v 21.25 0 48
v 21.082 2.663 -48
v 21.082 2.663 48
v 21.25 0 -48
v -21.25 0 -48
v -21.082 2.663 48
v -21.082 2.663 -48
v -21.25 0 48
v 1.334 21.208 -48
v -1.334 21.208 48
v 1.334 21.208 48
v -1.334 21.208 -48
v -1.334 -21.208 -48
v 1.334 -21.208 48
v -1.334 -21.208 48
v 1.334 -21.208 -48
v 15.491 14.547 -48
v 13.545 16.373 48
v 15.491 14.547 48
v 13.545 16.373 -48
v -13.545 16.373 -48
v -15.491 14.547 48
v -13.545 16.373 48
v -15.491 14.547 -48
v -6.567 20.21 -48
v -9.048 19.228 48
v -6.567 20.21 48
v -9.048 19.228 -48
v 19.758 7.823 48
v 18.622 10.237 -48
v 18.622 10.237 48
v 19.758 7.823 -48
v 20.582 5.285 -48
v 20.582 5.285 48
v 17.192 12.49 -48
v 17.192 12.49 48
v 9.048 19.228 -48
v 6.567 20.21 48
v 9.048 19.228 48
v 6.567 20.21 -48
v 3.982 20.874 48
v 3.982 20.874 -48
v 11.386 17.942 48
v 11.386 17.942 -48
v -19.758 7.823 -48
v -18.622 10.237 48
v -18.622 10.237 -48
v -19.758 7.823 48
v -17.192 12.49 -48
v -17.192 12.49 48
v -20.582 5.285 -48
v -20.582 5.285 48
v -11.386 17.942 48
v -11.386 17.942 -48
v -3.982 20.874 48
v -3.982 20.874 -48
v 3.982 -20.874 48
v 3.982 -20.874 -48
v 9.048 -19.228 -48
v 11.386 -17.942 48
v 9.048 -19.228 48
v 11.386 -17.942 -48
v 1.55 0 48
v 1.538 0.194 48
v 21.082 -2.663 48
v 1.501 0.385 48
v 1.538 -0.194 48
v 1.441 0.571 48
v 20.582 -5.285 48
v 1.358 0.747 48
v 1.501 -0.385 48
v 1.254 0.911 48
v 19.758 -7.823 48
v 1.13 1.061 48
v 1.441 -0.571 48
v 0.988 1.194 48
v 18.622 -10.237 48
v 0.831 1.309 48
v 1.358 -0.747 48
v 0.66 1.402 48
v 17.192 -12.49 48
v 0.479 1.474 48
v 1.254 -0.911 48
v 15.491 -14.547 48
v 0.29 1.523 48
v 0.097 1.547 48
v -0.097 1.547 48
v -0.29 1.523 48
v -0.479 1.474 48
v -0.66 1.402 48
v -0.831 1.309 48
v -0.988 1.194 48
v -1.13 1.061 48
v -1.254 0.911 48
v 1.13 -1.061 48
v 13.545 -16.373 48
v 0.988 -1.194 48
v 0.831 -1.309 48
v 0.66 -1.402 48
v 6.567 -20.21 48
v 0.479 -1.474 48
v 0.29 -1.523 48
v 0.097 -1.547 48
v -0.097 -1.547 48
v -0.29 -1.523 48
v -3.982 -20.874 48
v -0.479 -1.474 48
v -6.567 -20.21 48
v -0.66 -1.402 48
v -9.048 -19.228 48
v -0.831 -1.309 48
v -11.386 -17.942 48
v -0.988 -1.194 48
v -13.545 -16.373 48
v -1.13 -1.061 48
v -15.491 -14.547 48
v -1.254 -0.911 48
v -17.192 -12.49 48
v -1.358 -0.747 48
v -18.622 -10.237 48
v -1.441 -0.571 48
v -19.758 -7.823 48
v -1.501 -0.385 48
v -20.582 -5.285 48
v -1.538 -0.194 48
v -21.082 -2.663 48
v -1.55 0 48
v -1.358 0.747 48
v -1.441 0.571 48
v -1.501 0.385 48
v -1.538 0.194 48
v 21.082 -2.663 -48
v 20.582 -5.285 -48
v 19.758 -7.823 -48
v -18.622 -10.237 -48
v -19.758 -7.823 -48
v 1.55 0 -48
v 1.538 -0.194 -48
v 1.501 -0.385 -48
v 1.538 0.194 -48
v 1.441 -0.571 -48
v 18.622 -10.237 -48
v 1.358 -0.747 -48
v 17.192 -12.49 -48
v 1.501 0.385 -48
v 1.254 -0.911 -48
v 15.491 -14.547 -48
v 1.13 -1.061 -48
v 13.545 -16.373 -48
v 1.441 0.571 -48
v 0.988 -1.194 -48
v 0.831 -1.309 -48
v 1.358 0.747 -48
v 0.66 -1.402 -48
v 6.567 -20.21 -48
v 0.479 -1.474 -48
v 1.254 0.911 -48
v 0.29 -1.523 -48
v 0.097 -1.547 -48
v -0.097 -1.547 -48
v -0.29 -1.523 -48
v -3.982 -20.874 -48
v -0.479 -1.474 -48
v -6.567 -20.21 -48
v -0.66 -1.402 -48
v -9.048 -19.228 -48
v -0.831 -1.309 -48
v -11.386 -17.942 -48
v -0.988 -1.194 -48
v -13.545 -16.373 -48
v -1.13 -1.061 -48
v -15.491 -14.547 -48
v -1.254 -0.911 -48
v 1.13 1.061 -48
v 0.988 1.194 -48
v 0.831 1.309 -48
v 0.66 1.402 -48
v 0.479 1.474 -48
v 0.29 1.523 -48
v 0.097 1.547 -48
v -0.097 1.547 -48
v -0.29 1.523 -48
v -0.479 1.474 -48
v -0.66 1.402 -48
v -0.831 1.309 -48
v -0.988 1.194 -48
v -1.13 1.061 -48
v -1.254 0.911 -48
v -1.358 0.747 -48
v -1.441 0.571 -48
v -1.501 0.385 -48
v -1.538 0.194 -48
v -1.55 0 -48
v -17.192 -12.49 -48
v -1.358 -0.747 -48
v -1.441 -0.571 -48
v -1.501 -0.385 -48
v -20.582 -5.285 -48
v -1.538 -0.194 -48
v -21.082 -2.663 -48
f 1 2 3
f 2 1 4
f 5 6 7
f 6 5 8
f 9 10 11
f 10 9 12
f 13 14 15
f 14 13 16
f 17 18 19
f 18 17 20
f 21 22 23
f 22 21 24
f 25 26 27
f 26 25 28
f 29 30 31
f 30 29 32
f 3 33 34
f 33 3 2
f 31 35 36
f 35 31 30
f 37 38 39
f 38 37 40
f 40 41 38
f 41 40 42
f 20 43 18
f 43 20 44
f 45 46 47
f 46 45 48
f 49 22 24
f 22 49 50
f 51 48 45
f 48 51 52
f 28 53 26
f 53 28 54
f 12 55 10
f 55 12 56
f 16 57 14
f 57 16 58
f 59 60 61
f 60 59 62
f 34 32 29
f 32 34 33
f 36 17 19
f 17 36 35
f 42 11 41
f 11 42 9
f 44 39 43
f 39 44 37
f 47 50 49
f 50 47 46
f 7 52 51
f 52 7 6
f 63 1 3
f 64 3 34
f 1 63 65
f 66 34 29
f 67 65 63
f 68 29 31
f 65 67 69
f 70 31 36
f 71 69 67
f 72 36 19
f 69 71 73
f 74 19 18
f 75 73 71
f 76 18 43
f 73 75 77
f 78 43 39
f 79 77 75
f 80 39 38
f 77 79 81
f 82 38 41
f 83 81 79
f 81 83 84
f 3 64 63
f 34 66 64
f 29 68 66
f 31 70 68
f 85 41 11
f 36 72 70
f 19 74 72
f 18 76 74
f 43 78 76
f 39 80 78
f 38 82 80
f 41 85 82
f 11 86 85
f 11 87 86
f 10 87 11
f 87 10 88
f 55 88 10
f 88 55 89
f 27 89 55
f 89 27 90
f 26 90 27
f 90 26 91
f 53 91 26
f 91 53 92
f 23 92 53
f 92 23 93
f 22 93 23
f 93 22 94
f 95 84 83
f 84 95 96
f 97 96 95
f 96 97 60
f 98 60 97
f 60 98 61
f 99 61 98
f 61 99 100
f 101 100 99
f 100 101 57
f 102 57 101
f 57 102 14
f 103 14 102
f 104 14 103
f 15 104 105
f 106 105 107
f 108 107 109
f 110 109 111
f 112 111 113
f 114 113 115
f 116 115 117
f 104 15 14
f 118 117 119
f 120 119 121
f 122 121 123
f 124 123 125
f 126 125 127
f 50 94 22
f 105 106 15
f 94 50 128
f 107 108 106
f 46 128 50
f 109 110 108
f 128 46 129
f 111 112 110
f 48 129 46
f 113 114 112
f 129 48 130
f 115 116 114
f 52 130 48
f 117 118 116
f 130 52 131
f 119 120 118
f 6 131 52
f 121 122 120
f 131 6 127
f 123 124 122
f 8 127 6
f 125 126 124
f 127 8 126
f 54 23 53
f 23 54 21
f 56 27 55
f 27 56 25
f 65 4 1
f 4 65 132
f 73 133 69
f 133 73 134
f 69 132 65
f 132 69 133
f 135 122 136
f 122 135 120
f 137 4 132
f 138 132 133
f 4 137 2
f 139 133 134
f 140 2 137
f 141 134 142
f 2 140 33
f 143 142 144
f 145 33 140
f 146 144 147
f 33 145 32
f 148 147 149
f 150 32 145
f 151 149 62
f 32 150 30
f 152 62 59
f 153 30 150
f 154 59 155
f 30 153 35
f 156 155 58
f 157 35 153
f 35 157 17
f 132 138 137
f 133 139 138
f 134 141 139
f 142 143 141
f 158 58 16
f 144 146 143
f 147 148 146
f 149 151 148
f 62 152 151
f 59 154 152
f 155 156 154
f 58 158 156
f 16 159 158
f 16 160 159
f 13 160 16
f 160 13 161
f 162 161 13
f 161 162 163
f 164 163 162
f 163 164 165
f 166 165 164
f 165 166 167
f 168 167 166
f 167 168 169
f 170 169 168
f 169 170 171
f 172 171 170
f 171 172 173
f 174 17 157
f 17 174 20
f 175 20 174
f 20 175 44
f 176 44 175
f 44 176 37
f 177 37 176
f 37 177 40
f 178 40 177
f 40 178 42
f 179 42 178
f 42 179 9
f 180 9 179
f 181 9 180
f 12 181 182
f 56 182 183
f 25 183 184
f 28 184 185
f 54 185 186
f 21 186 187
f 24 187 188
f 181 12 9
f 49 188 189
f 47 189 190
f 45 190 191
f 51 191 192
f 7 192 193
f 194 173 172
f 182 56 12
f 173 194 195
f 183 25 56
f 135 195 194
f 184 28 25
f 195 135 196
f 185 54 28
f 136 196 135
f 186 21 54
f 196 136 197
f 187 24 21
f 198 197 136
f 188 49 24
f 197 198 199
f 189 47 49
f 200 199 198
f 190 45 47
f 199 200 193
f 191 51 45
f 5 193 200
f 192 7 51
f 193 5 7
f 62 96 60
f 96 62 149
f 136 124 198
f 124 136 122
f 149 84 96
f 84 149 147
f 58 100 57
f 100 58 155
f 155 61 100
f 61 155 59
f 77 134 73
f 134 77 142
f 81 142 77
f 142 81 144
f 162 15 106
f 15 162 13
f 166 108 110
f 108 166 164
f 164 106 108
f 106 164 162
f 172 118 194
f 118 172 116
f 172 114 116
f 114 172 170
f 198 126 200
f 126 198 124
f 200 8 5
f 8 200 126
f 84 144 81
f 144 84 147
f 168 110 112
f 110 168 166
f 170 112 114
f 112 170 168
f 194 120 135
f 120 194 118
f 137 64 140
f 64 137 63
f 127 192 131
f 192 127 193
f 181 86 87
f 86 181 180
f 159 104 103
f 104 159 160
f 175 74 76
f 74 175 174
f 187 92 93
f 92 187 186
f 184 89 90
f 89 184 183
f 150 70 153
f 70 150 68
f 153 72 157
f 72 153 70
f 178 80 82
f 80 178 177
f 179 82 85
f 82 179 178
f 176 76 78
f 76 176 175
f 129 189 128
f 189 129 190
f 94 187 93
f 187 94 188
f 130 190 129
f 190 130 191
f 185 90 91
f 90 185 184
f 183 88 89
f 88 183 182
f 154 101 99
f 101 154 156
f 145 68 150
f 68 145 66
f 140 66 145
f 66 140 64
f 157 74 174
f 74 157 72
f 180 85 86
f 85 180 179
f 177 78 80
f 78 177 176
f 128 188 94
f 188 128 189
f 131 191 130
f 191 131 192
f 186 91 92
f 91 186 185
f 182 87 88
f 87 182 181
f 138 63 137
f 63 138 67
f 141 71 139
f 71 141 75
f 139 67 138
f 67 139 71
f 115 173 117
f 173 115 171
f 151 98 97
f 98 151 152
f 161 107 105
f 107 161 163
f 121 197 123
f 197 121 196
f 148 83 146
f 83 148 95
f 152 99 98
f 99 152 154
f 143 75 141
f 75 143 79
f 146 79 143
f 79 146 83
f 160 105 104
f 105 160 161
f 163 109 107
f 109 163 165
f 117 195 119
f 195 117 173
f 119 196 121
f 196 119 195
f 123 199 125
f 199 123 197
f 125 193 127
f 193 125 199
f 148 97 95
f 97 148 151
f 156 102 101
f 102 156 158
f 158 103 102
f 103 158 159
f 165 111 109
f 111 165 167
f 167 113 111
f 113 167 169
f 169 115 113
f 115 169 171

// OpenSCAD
$fn = 50;


difference() {
	union() {
		translate(v = [0, 0, -48.0000000000]) {
			cylinder(h = 96, r = 21.2500000000);
		}
	}
	union() {
		translate(v = [0, 0, -100.0000000000]) {
			cylinder(h = 200, r = 1.5500000000);
		}
	}
}
